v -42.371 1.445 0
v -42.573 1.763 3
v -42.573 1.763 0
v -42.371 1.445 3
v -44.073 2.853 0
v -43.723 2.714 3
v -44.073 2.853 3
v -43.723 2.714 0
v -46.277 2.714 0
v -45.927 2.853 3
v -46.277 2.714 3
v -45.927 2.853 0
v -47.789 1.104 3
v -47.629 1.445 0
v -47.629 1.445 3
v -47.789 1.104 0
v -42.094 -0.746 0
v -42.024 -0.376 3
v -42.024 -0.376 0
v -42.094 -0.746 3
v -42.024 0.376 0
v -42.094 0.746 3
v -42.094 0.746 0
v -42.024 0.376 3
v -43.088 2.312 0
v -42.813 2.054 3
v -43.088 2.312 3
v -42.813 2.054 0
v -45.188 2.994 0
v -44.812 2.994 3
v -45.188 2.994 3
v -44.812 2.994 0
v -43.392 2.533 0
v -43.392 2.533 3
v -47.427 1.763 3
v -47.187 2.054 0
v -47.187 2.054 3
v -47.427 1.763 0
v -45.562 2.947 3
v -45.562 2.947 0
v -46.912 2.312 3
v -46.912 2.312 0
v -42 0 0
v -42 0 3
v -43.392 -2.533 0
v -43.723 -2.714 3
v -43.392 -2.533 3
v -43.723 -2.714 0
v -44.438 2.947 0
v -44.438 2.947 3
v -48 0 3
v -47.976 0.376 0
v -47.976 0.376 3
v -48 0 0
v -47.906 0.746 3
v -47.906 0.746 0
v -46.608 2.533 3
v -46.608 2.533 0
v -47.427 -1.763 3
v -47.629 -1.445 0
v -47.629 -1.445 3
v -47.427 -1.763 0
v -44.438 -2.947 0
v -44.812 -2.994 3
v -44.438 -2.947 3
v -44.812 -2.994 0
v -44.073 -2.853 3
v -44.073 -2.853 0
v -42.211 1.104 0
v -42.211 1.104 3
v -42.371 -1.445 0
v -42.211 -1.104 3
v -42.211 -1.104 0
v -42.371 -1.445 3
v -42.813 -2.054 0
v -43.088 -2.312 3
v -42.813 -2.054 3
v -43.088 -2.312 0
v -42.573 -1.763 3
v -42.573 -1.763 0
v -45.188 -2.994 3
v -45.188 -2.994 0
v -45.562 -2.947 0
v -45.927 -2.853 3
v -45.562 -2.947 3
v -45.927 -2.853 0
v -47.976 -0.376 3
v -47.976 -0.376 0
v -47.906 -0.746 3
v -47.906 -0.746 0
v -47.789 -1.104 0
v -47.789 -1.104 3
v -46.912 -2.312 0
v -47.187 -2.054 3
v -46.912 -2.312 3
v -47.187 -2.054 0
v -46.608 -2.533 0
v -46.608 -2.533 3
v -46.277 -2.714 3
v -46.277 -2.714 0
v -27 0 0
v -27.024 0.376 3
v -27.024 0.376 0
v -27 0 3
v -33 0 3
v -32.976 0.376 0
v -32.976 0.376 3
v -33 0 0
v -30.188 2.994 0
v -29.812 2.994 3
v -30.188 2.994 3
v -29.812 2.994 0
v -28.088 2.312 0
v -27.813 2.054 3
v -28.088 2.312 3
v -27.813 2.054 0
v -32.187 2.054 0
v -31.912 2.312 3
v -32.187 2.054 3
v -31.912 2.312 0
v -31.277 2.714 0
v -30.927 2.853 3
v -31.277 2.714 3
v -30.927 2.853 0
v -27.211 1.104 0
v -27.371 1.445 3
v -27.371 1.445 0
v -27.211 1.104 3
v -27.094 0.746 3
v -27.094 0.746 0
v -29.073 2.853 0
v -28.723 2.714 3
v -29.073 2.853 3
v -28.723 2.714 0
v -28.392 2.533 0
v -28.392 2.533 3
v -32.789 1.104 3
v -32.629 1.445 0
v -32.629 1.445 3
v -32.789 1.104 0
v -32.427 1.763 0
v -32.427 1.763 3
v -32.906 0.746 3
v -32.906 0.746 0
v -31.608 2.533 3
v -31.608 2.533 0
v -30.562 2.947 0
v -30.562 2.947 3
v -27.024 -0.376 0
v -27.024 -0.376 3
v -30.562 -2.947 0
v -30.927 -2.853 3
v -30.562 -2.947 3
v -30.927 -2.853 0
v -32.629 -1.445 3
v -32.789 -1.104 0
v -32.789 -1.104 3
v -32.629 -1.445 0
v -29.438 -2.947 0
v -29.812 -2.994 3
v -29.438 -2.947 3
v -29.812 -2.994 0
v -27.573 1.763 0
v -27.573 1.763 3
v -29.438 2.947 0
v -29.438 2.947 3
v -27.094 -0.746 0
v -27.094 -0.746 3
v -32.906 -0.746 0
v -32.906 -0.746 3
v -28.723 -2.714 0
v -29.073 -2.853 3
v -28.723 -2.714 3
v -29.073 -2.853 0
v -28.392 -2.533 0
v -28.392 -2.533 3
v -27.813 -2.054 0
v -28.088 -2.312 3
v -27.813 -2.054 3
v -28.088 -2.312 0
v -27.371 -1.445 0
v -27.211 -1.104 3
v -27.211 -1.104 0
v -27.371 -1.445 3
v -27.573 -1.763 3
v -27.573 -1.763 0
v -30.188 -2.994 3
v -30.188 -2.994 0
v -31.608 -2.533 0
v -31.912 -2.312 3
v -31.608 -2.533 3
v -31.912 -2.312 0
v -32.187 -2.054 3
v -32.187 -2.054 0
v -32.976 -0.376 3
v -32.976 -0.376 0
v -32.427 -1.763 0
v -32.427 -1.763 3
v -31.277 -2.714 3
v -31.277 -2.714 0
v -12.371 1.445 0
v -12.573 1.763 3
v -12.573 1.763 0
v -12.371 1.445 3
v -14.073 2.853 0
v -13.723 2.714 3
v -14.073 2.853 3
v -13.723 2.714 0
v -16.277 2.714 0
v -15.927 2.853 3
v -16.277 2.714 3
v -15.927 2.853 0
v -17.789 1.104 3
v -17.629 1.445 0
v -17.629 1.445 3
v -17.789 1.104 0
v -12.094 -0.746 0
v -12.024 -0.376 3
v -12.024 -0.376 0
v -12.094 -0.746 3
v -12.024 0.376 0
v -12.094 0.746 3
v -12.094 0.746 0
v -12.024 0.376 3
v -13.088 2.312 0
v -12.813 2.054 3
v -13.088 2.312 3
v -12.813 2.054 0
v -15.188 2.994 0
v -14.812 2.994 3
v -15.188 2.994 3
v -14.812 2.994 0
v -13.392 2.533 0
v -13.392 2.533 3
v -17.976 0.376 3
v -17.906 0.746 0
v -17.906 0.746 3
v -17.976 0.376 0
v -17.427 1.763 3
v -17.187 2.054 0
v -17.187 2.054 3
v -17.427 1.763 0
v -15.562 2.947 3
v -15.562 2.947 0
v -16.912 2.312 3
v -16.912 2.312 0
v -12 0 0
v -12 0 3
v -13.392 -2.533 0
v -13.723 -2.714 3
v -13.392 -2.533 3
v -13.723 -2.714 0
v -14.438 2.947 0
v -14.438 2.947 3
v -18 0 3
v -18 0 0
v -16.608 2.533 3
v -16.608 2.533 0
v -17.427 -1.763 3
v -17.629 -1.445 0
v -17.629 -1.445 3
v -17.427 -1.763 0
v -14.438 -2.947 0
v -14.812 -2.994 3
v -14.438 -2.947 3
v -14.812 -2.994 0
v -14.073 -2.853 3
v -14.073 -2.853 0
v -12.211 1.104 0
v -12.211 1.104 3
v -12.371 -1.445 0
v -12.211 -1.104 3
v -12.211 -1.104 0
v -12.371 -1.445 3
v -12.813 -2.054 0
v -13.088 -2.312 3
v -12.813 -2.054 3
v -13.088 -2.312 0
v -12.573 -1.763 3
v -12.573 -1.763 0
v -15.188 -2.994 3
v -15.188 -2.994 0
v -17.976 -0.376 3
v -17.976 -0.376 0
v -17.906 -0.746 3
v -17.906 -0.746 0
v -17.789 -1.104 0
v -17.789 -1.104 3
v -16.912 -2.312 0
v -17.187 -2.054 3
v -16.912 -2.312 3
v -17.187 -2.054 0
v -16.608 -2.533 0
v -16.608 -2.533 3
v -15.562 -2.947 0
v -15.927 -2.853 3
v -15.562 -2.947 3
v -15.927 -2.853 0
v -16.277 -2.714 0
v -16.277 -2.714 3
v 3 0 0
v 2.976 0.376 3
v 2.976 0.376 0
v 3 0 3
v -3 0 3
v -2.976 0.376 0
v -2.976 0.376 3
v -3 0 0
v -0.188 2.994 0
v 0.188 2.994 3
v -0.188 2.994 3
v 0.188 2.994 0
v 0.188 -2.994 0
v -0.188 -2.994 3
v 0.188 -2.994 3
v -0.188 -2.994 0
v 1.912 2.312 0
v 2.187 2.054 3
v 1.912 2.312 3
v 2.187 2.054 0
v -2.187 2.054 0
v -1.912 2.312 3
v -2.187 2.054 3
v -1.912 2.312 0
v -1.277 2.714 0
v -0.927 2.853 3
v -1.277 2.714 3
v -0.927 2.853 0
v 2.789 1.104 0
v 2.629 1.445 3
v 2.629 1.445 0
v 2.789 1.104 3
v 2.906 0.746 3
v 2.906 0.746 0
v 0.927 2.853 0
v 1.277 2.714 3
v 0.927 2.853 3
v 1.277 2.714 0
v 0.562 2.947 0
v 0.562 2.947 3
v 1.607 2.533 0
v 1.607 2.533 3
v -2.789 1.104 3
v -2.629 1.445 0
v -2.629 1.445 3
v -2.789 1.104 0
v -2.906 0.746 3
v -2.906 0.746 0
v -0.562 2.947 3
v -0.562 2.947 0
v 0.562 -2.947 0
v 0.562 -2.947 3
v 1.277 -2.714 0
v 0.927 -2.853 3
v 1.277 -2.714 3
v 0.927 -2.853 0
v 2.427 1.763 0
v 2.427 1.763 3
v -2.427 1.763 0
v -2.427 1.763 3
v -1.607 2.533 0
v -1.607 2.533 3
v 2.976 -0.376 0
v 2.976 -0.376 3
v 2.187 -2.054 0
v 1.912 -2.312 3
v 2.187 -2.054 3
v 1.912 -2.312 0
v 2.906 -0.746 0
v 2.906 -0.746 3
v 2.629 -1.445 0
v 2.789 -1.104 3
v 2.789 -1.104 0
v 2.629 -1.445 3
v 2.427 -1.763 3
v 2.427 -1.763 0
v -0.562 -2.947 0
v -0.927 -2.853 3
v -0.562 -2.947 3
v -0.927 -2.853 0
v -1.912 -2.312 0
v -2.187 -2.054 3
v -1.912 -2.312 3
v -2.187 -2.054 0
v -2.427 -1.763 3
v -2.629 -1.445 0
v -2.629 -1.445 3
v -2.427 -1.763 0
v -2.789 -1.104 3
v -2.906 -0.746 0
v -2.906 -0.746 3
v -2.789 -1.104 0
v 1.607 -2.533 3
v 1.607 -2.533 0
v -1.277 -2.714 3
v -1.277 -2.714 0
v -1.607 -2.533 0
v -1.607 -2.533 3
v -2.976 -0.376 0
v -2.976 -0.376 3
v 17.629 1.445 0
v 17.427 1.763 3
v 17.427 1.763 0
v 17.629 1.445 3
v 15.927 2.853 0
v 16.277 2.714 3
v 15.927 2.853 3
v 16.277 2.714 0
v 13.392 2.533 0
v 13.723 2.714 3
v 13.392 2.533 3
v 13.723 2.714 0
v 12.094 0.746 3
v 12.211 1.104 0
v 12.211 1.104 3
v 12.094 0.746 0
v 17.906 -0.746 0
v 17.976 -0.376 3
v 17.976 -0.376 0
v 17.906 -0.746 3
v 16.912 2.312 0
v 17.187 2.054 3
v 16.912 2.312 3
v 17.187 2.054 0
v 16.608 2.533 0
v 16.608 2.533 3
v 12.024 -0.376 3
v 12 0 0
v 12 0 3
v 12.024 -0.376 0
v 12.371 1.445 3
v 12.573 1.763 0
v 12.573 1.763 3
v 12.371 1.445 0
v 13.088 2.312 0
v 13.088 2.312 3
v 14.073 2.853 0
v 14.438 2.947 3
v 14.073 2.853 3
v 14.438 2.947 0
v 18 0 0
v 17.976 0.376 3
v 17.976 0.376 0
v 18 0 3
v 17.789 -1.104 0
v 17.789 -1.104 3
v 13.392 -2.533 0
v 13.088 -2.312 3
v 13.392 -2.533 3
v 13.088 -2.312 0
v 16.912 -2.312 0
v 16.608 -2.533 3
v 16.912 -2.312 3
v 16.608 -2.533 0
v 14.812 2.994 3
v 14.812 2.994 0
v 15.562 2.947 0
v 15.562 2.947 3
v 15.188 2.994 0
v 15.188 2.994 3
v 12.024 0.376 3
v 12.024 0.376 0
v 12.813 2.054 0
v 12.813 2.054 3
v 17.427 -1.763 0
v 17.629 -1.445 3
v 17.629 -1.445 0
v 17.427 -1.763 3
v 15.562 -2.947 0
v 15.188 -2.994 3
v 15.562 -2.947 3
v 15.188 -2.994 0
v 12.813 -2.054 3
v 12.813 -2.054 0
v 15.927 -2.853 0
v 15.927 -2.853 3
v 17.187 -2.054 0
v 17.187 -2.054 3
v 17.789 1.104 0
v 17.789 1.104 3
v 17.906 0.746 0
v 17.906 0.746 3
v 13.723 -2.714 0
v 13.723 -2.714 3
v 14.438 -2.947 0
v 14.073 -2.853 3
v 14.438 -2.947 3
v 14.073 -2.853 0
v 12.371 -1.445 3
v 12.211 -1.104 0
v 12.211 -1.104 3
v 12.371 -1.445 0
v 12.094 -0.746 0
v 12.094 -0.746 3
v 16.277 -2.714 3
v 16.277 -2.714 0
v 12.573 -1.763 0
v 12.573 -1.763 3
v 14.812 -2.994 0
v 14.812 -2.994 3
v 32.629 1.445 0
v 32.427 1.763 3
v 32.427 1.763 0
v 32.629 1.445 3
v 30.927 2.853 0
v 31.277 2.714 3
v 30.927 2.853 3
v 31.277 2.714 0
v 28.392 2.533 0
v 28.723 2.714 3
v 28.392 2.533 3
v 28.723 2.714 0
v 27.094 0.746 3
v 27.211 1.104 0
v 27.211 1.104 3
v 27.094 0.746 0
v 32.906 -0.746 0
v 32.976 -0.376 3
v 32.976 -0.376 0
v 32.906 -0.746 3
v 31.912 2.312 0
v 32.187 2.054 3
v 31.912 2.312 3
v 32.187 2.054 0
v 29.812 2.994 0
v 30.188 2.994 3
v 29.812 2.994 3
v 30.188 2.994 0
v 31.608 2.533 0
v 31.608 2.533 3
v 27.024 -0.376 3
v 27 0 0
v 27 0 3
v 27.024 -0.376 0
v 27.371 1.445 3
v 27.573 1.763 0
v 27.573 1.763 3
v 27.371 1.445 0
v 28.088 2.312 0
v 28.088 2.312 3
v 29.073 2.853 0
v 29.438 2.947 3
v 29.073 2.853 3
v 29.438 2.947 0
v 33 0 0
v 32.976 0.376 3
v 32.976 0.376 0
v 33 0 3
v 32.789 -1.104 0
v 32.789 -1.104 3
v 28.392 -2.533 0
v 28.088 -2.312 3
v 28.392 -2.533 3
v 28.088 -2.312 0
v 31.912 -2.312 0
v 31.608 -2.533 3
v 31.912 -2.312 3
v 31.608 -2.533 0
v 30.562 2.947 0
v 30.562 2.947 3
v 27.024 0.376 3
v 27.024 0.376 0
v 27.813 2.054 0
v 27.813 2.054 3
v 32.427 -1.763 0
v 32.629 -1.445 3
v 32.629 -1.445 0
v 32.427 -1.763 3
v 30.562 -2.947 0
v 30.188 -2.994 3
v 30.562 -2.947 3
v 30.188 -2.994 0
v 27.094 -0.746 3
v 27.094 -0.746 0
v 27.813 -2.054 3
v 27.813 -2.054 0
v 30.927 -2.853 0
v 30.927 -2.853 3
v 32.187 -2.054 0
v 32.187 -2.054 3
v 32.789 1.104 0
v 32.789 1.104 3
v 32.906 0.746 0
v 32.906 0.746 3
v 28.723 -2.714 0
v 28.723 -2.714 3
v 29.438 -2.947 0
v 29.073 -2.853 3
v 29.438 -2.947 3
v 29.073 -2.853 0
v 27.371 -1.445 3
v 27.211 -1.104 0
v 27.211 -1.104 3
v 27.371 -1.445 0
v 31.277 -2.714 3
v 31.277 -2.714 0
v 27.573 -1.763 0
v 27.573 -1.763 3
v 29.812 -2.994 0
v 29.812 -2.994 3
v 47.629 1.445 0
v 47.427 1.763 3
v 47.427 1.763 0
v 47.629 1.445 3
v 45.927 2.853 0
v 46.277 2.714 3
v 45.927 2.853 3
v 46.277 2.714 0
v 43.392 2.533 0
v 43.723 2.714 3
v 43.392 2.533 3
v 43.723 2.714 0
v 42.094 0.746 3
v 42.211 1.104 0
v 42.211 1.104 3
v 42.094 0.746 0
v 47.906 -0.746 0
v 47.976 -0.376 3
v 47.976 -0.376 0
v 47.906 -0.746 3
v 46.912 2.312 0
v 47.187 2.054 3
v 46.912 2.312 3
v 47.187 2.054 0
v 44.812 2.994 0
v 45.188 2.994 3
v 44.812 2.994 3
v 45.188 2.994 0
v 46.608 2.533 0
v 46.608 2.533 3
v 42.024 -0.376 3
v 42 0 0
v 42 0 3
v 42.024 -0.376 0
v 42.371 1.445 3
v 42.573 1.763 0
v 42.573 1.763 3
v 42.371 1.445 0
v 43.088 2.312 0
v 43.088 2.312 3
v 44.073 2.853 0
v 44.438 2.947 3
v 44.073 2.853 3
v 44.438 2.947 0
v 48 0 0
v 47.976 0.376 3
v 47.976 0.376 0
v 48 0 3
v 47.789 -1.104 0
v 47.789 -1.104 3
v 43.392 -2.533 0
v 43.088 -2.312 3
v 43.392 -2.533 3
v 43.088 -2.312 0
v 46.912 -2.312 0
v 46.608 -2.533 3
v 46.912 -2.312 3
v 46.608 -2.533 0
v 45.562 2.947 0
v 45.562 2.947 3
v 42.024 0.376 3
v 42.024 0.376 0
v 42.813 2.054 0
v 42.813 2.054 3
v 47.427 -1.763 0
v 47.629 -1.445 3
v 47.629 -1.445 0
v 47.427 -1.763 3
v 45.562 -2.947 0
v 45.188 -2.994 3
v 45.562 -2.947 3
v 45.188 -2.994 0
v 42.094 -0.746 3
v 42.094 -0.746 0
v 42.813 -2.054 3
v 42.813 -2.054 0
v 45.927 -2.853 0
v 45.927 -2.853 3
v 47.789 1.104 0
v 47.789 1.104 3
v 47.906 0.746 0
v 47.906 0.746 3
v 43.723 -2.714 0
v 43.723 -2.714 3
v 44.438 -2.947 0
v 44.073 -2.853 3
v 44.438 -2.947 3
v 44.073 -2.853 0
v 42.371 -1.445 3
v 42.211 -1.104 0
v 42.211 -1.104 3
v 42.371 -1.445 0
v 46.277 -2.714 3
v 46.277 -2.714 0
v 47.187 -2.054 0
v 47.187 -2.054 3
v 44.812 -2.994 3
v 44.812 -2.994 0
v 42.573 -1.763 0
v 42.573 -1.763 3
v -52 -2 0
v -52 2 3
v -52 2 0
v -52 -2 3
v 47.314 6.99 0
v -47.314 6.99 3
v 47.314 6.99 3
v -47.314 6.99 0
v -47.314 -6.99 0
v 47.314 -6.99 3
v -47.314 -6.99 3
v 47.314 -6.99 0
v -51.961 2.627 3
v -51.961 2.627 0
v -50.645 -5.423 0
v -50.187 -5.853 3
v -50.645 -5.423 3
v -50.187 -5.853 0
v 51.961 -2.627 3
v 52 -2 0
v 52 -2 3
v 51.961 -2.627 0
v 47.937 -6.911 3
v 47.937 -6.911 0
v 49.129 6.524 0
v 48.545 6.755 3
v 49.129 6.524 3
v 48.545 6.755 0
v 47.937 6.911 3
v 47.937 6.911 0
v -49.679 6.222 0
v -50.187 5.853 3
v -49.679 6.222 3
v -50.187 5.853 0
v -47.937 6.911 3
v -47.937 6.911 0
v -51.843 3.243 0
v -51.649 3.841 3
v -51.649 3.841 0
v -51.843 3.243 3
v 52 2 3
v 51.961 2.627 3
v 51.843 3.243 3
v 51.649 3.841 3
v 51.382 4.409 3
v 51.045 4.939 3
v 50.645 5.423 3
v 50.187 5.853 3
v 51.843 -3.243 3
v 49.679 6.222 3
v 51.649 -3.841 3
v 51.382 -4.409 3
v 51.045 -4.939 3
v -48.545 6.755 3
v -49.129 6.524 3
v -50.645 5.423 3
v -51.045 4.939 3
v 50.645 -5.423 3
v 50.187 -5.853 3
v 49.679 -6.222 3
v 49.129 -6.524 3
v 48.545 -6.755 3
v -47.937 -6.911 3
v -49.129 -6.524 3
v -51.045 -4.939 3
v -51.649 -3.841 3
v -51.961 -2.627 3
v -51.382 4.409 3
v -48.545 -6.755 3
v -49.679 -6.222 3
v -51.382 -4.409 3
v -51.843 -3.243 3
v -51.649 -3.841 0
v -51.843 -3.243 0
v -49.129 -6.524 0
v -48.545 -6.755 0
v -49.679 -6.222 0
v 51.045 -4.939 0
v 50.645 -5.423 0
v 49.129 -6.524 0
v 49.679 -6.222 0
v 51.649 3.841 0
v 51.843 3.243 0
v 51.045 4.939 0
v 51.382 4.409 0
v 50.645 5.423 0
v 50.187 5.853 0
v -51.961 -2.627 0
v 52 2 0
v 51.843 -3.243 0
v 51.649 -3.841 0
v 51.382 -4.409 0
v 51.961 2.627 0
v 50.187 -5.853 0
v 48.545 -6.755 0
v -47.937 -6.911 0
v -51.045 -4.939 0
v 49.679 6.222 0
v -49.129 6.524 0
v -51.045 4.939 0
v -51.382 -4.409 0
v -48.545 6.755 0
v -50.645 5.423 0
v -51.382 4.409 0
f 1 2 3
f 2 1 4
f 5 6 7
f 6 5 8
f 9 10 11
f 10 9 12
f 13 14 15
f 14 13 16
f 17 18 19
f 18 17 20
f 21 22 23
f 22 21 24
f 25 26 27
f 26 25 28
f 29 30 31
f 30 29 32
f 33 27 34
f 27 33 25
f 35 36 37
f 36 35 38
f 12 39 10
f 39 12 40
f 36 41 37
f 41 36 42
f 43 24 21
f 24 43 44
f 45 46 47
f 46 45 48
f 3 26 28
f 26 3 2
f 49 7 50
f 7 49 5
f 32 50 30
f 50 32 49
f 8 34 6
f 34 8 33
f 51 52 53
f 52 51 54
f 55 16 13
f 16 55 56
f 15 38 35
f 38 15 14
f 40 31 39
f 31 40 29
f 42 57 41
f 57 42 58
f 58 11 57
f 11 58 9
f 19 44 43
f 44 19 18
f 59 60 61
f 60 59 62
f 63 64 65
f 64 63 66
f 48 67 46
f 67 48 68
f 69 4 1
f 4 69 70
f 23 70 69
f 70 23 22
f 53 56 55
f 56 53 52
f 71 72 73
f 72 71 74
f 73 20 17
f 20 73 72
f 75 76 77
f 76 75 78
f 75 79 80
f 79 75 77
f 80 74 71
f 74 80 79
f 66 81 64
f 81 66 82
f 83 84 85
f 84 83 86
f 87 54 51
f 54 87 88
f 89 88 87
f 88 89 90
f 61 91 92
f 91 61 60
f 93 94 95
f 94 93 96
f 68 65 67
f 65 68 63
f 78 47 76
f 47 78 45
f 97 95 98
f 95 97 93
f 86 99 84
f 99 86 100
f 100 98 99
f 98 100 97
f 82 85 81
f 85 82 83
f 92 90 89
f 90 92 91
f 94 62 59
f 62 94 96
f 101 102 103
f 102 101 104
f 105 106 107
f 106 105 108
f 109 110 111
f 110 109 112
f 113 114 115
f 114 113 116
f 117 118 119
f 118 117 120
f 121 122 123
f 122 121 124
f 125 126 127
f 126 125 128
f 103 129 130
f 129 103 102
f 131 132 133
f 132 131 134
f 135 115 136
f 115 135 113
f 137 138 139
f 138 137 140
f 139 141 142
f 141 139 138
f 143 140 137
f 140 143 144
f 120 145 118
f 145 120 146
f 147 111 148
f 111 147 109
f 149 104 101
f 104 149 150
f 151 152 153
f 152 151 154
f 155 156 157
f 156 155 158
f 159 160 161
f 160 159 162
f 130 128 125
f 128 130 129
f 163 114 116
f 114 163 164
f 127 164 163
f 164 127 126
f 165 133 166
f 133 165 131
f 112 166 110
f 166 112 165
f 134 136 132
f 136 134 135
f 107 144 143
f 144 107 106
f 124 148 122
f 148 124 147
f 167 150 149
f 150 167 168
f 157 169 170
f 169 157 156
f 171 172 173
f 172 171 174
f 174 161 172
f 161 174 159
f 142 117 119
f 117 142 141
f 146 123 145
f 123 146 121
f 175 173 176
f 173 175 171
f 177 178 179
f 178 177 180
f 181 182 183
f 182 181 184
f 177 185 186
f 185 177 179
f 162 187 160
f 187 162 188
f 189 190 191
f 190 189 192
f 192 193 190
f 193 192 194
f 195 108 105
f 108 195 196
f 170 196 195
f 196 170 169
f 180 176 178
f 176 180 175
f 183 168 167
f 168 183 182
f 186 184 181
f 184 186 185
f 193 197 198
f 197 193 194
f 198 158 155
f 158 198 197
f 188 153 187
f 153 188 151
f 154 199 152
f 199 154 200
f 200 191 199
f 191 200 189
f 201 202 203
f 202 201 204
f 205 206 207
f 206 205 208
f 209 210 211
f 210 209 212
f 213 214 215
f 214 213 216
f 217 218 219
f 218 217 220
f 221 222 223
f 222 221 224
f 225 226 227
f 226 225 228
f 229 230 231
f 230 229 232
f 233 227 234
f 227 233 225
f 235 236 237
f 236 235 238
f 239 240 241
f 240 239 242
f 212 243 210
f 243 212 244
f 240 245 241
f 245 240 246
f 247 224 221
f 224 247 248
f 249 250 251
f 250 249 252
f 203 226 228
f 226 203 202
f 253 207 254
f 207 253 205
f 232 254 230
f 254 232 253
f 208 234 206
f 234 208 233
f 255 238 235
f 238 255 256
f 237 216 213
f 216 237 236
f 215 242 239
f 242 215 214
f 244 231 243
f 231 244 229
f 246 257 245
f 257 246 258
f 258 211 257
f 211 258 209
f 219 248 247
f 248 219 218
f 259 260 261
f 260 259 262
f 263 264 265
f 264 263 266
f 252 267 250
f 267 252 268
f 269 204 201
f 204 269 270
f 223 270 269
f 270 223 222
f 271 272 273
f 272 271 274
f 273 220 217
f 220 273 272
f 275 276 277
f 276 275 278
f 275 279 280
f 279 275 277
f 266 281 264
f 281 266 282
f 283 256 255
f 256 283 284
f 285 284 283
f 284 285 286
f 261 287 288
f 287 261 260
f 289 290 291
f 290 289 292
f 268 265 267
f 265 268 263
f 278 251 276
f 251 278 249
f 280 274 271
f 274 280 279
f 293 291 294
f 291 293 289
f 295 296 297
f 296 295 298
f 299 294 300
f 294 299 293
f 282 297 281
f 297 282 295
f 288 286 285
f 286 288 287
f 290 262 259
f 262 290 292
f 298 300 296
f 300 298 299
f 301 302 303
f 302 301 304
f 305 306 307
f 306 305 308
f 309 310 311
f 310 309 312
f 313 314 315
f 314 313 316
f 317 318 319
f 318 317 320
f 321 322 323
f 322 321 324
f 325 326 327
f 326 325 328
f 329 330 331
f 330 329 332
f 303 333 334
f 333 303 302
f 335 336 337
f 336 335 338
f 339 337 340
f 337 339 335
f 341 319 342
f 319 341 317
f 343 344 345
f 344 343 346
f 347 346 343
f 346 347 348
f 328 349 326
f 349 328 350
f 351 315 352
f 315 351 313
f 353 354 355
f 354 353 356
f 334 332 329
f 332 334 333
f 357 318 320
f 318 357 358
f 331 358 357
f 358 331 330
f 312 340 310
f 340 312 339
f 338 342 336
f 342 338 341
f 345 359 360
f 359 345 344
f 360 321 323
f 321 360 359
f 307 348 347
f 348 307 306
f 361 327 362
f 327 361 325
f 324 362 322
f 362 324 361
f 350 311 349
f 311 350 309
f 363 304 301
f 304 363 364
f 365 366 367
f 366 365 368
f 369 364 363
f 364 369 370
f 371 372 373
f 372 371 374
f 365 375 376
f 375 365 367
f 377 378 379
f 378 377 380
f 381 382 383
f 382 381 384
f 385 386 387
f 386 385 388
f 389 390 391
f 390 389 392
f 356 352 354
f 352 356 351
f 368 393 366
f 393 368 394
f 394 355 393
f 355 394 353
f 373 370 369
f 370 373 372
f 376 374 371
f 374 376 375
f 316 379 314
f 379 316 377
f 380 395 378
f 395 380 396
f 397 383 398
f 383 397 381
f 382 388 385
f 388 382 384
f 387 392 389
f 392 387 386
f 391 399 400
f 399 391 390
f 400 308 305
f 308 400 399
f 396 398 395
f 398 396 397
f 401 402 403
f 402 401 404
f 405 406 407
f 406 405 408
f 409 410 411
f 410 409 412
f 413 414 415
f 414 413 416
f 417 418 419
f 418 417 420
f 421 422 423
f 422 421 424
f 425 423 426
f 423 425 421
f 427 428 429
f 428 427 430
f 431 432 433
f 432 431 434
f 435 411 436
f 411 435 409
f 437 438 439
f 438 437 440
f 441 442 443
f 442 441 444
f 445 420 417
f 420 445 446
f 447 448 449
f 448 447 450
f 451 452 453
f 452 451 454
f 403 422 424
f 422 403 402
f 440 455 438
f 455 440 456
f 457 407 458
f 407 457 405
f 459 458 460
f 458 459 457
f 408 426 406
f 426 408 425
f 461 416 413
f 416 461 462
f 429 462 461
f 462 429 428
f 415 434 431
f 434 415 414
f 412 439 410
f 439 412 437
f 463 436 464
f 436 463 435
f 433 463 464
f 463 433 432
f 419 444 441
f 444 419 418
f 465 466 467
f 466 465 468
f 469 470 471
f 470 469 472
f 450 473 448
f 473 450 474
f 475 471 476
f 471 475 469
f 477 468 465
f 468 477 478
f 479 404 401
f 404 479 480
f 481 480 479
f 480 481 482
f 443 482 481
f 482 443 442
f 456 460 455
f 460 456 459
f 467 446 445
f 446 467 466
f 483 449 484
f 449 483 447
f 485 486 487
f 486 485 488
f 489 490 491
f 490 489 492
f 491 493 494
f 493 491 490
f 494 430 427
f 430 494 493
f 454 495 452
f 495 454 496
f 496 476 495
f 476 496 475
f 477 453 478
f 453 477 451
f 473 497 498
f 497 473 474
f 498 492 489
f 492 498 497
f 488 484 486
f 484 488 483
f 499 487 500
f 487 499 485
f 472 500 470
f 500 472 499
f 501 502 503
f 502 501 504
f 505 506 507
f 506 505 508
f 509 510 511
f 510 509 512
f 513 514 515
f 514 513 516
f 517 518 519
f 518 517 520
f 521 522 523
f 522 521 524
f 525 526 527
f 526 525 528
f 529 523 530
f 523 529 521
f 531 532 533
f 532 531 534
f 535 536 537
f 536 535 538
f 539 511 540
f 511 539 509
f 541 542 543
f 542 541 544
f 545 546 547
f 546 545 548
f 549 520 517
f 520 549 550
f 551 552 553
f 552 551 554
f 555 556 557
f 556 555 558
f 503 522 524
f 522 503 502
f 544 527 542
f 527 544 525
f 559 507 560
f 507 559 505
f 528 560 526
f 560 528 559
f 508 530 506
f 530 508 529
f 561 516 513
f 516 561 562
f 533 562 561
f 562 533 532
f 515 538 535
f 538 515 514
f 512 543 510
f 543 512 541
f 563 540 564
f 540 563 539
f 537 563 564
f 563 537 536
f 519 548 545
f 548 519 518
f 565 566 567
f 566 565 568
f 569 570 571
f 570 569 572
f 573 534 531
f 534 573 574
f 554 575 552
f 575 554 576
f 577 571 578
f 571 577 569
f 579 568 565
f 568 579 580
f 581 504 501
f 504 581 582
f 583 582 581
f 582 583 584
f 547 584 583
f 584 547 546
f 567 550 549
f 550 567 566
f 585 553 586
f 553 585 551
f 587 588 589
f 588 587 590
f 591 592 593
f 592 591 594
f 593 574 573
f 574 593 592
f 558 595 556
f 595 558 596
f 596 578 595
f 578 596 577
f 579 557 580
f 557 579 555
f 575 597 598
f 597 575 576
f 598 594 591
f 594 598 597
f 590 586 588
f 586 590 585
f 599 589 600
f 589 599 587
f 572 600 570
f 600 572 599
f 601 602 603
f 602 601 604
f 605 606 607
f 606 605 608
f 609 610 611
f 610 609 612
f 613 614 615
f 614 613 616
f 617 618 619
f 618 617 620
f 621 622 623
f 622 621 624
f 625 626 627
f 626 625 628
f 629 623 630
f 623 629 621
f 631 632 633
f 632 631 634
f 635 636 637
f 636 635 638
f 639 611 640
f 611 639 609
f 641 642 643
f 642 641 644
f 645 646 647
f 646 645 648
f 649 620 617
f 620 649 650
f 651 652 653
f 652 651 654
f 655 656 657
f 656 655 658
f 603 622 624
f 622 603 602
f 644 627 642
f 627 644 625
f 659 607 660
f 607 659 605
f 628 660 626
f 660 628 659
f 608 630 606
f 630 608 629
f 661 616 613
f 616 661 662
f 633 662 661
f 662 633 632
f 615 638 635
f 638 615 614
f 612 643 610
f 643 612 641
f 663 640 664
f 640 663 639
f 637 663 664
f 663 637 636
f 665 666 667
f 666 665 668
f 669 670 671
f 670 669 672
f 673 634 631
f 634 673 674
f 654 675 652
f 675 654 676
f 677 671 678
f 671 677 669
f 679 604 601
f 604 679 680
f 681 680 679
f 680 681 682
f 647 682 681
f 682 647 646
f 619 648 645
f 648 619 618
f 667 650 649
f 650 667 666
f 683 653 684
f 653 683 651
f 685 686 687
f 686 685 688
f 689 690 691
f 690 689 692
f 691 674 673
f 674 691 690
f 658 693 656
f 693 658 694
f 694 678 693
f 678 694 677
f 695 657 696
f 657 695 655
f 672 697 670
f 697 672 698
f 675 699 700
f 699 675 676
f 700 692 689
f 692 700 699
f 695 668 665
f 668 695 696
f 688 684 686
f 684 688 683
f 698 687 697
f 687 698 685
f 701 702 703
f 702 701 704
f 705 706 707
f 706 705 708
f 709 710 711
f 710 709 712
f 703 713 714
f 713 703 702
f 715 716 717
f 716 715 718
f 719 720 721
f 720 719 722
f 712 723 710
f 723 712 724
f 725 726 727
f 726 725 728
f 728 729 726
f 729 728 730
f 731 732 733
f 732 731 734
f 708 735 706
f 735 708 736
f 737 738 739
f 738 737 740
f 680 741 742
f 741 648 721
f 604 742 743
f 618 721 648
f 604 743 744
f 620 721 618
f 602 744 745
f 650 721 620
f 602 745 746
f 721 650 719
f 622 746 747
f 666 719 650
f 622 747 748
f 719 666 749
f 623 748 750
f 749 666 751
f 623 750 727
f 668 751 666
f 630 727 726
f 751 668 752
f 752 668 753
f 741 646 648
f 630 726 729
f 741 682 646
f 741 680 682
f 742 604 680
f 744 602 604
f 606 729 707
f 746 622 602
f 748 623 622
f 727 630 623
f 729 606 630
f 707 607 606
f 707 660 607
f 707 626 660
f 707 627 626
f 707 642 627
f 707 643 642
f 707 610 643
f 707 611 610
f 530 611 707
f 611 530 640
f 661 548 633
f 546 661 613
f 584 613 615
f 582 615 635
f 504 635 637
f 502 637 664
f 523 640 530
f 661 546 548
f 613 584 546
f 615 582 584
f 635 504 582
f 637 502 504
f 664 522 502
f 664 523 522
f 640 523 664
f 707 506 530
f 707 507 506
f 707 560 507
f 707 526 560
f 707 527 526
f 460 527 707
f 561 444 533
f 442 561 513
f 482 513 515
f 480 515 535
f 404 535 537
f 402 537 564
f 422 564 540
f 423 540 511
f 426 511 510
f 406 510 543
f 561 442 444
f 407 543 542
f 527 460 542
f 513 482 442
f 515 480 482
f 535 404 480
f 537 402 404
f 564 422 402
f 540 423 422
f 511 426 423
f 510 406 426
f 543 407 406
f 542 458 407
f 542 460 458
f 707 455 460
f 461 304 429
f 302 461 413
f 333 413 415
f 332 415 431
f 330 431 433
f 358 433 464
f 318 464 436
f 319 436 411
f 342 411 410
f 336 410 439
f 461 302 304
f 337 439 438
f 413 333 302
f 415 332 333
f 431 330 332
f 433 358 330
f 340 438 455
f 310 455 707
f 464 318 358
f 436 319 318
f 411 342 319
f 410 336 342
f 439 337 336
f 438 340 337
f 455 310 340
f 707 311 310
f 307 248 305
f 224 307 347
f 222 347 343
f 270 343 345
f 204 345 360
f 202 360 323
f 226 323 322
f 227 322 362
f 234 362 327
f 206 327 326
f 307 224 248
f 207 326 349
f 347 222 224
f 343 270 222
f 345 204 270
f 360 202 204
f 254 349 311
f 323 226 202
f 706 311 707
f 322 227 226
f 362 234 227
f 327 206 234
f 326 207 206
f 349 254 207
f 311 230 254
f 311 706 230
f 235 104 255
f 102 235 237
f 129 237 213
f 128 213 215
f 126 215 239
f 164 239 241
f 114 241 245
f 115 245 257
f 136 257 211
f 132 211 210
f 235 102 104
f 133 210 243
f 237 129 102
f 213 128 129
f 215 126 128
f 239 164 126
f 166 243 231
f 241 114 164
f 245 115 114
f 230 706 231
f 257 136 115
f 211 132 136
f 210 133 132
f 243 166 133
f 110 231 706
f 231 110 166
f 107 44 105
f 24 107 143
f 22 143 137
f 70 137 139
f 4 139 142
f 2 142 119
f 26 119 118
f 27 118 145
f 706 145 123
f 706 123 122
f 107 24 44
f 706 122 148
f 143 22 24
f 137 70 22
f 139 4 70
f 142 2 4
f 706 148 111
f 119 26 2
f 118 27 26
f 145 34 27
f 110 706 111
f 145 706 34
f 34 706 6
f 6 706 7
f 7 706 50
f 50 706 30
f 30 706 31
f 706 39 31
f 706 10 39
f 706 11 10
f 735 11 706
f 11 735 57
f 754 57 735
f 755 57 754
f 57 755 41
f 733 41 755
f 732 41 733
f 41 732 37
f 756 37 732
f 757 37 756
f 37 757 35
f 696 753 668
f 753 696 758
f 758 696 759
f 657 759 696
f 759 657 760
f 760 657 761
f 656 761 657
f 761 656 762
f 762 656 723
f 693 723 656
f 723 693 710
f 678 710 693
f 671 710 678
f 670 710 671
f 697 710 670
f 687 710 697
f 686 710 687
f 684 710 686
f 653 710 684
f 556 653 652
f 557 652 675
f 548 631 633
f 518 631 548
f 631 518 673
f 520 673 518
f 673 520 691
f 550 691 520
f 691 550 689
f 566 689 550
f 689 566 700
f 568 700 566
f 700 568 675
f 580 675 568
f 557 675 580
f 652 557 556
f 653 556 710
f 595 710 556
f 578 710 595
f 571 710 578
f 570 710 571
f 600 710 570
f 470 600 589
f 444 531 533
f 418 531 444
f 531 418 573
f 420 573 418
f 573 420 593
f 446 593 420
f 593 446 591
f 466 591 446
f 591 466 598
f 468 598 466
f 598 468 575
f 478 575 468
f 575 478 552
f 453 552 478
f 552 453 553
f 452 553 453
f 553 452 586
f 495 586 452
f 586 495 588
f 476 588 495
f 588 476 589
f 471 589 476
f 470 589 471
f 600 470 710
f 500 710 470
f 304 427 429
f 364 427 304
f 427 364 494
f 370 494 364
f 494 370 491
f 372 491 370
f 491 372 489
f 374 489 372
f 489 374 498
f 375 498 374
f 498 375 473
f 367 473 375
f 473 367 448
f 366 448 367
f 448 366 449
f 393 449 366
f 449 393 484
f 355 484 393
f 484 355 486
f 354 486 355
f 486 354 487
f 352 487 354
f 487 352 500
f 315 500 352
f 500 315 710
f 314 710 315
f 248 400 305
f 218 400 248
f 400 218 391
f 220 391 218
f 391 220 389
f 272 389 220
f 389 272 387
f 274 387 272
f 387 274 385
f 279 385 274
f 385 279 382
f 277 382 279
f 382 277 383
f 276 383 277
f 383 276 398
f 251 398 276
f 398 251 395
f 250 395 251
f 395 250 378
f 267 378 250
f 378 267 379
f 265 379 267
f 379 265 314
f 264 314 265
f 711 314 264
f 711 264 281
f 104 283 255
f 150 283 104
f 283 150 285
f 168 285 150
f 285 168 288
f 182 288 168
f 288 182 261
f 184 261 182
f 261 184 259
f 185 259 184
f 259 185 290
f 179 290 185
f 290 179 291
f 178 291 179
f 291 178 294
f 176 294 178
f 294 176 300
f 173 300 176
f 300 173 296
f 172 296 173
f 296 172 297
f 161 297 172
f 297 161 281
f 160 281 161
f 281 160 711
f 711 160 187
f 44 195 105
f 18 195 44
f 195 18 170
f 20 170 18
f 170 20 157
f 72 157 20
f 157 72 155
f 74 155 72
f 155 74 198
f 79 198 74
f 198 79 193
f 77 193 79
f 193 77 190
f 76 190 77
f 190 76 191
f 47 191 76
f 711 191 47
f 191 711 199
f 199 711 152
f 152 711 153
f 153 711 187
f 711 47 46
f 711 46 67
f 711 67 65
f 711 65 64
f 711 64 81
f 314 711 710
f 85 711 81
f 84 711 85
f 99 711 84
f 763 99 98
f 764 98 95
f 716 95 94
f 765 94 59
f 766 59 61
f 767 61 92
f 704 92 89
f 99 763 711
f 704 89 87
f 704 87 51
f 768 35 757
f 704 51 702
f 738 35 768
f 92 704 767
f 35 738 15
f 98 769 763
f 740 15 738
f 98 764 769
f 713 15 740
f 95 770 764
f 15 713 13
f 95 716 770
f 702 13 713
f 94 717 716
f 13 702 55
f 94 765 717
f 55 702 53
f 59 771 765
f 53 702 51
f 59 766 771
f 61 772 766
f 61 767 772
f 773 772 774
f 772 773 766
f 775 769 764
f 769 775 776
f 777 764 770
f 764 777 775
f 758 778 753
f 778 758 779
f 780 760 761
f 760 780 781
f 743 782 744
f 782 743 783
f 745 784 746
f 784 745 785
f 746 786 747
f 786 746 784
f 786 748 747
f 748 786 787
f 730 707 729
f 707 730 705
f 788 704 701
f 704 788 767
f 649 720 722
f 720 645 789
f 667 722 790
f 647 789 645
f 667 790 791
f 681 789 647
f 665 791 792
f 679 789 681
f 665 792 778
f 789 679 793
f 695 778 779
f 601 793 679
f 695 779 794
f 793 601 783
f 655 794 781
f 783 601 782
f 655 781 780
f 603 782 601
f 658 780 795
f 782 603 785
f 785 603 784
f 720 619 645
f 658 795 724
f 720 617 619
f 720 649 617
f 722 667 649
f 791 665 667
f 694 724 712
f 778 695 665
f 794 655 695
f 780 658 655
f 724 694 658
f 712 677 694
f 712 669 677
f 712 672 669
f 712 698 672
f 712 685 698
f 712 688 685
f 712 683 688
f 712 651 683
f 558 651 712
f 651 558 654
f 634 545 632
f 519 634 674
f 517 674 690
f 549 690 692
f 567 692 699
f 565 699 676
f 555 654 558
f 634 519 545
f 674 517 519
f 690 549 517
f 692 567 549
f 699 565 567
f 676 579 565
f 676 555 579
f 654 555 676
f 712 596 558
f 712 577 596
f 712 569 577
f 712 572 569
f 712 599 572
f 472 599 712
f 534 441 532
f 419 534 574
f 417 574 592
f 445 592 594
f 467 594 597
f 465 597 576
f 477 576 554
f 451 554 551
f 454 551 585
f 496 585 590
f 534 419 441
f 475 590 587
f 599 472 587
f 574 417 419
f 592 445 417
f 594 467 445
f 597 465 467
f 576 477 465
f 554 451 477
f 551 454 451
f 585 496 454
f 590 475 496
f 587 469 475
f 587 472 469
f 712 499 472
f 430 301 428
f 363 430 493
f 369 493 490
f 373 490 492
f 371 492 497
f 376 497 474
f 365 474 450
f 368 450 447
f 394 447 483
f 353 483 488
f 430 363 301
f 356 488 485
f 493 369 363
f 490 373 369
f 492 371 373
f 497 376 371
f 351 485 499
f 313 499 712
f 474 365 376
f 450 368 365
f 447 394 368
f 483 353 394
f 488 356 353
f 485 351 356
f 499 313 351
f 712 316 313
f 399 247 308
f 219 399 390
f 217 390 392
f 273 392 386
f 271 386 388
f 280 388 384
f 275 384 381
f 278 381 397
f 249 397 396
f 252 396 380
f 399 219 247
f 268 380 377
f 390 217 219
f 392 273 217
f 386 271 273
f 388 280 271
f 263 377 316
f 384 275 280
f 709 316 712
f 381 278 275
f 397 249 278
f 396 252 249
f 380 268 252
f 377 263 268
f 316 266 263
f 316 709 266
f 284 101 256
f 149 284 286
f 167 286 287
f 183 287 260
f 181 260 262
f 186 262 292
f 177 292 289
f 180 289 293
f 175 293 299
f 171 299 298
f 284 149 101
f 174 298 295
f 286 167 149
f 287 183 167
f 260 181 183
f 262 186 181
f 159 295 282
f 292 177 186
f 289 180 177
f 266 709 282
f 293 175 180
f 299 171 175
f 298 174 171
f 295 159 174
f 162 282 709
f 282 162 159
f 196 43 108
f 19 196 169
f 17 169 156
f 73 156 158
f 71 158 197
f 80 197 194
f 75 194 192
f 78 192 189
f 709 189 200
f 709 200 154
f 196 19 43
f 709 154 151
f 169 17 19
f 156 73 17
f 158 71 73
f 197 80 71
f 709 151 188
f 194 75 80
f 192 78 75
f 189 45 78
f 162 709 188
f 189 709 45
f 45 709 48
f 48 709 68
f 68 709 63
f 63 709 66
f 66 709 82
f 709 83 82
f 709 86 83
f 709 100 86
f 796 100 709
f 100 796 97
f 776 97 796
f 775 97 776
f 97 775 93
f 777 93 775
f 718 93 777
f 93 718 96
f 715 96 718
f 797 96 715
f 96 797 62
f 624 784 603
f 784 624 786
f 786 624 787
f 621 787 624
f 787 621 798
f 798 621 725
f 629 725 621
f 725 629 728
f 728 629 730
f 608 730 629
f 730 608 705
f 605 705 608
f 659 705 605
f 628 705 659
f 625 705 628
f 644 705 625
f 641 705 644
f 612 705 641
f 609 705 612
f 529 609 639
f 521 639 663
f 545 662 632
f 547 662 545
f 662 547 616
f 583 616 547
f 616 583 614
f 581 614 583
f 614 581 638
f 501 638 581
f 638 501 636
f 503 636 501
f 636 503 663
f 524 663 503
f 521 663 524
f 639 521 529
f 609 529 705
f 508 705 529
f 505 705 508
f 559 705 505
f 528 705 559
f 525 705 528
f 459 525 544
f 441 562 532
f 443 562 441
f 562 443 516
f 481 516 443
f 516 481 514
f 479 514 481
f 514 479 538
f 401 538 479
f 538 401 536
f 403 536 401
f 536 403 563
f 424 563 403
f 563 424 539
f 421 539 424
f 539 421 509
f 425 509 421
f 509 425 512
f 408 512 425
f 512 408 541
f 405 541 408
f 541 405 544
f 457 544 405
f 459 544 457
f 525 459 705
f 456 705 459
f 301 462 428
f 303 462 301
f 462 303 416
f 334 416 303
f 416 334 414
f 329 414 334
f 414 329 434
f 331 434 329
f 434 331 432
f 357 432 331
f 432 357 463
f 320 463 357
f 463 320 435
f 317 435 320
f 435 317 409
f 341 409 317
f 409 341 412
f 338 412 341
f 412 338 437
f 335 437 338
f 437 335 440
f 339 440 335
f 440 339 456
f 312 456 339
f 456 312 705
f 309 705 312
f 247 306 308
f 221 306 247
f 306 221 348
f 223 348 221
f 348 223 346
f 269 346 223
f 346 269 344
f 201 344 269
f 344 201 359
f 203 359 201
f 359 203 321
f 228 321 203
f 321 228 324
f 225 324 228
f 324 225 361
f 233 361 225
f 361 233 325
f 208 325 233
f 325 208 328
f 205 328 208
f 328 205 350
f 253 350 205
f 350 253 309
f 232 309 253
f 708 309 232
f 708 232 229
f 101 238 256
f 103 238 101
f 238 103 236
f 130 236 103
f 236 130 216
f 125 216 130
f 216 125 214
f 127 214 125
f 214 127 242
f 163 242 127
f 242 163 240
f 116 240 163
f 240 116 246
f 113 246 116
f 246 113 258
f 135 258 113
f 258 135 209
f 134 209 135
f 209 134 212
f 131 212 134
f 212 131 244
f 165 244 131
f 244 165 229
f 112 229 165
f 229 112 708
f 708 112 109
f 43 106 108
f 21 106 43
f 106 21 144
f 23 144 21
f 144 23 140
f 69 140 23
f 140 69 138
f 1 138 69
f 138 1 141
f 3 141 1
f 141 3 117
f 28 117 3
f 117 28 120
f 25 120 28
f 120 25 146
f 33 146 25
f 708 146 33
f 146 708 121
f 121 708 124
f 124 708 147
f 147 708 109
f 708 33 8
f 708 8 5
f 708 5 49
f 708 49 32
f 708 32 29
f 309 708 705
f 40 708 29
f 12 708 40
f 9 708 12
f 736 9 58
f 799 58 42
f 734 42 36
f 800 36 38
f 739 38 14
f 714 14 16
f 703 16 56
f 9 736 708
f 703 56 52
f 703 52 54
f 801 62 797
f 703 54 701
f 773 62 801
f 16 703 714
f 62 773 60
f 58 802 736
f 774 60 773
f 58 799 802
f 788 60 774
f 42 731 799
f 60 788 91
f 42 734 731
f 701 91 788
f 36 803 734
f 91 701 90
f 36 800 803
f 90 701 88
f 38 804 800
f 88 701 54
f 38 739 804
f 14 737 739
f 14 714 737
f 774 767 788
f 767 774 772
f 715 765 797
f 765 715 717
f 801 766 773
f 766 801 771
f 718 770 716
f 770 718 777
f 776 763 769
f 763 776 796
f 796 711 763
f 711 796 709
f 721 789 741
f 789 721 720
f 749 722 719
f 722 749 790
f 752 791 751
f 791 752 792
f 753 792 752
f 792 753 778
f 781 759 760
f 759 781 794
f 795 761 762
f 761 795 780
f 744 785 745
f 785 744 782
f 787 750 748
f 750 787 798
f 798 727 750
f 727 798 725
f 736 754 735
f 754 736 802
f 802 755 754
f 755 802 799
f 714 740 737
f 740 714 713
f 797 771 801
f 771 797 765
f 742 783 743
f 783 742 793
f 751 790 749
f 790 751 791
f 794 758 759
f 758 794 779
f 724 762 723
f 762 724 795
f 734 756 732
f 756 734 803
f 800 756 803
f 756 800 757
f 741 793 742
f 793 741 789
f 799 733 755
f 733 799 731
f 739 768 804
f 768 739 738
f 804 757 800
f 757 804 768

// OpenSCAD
// Generated by SolidPython 1.1.3 on 2023-03-13 21:42:53
$fn = 50;


difference() {
	union() {
		translate(v = [0, 0, 0]) {
			rotate(a = [0, 0, 0]) {
				hull() {
					translate(v = [-47.0000000000, 2.0000000000, 0]) {
						rotate(a = [0, 0, 0]) {
							translate(v = [0, 0, 0]) {
								rotate(a = [0, 0, 0]) {
									cylinder(h = 3, r = 5);
								}
							}
						}
					}
					translate(v = [47.0000000000, 2.0000000000, 0]) {
						rotate(a = [0, 0, 0]) {
							translate(v = [0, 0, 0]) {
								rotate(a = [0, 0, 0]) {
									cylinder(h = 3, r = 5);
								}
							}
						}
					}
					translate(v = [-47.0000000000, -2.0000000000, 0]) {
						rotate(a = [0, 0, 0]) {
							translate(v = [0, 0, 0]) {
								rotate(a = [0, 0, 0]) {
									cylinder(h = 3, r = 5);
								}
							}
						}
					}
					translate(v = [47.0000000000, -2.0000000000, 0]) {
						rotate(a = [0, 0, 0]) {
							translate(v = [0, 0, 0]) {
								rotate(a = [0, 0, 0]) {
									cylinder(h = 3, r = 5);
								}
							}
						}
					}
				}
			}
		}
	}
	union() {
		translate(v = [-45.0000000000, 0.0000000000, 0]) {
			rotate(a = [0, 0, 0]) {
				translate(v = [0, 0, -50]) {
					rotate(a = [0, 0, 0]) {
						cylinder(h = 100, r = 3.0000000000);
					}
				}
			}
		}
		translate(v = [-30.0000000000, 0.0000000000, 0]) {
			rotate(a = [0, 0, 0]) {
				translate(v = [0, 0, -50]) {
					rotate(a = [0, 0, 0]) {
						cylinder(h = 100, r = 3.0000000000);
					}
				}
			}
		}
		translate(v = [-15.0000000000, 0.0000000000, 0]) {
			rotate(a = [0, 0, 0]) {
				translate(v = [0, 0, -50]) {
					rotate(a = [0, 0, 0]) {
						cylinder(h = 100, r = 3.0000000000);
					}
				}
			}
		}
		translate(v = [0.0000000000, 0.0000000000, 0]) {
			rotate(a = [0, 0, 0]) {
				translate(v = [0, 0, -50]) {
					rotate(a = [0, 0, 0]) {
						cylinder(h = 100, r = 3.0000000000);
					}
				}
			}
		}
		translate(v = [15.0000000000, 0.0000000000, 0]) {
			rotate(a = [0, 0, 0]) {
				translate(v = [0, 0, -50]) {
					rotate(a = [0, 0, 0]) {
						cylinder(h = 100, r = 3.0000000000);
					}
				}
			}
		}
		translate(v = [30.0000000000, 0.0000000000, 0]) {
			rotate(a = [0, 0, 0]) {
				translate(v = [0, 0, -50]) {
					rotate(a = [0, 0, 0]) {
						cylinder(h = 100, r = 3.0000000000);
					}
				}
			}
		}
		translate(v = [45.0000000000, 0.0000000000, 0]) {
			rotate(a = [0, 0, 0]) {
				translate(v = [0, 0, -50]) {
					rotate(a = [0, 0, 0]) {
						cylinder(h = 100, r = 3.0000000000);
					}
				}
			}
		}
	}
}
/***********************************************
*********      SolidPython code:      **********
************************************************
 
from solid import *
import os
import subprocess

import oomB

import opsc_library_gen

mode = "laser"
#mode = "3d_print"

defined_objects = {}

radius_dict = {}
countersunk_dict = {}


def set_mode(m):
    global mode
    mode = m
    radius_dict['M6'] = 6.5/2
    radius_dict['M3'] = 3.3/2
    if mode == "laser":
        radius_dict['M6'] = 6/2
        radius_dict['M3'] = 3/2

    countersunk_dict['M3'] = {}
    countersunk_dict['M3']['little_rad'] = radius_dict['M3']
    countersunk_dict['M3']['big_rad'] = (5.5+0.6)/2
    if mode == "laser":
        countersunk_dict['M3']['big_rad'] = (4.75+0.6)/2
        countersunk_dict['M3']['little_rad'] = (4.75+0.6)/2

    countersunk_dict['M3']['height'] = 1.7


def opsc_make_object(filename, objects, save_type="none",resolution=50, layers = 1, tilediff = 200, mode="laser", overwrite=True):
    if overwrite or not os.path.exists(filename):
        set_mode(mode)
        save_type = save_type.lower()
        os.makedirs(os.path.dirname(filename), exist_ok=True)
        final_object = opsc_get_object(objects, mode = mode)
        # Save the final object to the specified filename    
        scad_render_to_file(final_object, filename, file_header='$fn = %s;' % resolution, include_orig_code=True)
        if save_type == "all":
            saveToAll(filename)
        elif save_type == "dxf":
            saveToDxf(filename)
        if mode == "laser":
            filename_laser = filename.replace(".scad","-flat.scad")
            scad_render_to_file(getLaser(final_object, layers=layers, tilediff=tilediff), filename_laser, file_header='$fn = %s;' % resolution, include_orig_code=True)
            if save_type == "all":
                saveToAll(filename_laser)
            elif save_type == "dxf":
                saveToDxf(filename_laser)


def opsc_get_object(objects, mode = "laser"):
    # Create the solidpython objects only include the positive objects and if they don't have inclusion or their inclusion is either all or mode
    # Initialize an empty list to store the results
    positive_objects = []

    # Iterate over the "objects" list
    for obj in objects:
        # Check if the current object has a "type" key with a value of "positive"
        if obj['type'] == 'positive':
            # Check if the current object has an "inclusion" key and its value matches "mode",
            # or if the current object does not have an "inclusion" key at all
            if not 'inclusion' in obj or obj['inclusion'] == "all" or obj['inclusion'] == mode:
                # Call the "get_opsc_item" function with the current object as an argument
                opsc_item = get_opsc_item(obj)
                # Add the result to the "positive_objects" list
                positive_objects.append(opsc_item)
# Initialize an empty list to store the results
    negative_objects = []

    # Iterate over the "objects" list
    for obj in objects:
        # Check if the current object has a "type" key with a value of "negative"
        if obj['type'] == 'negative':
            # Check if the current object has an "inclusion" key and its value matches "mode",
            # or if the current object does not have an "inclusion" key at all
            if not 'inclusion' in obj or obj['inclusion'] == "all" or obj['inclusion'] == mode:
                # Call the "get_opsc_item" function with the current object as an argument
                opsc_item = get_opsc_item(obj)
                # Add the result to the "negative_objects" list
                negative_objects.append(opsc_item)
    
    #positive_objects = [get_opsc_item(obj) for obj in objects if obj['type'] == 'positive']
    #negative_objects = [get_opsc_item(obj) for obj in objects if obj['type'] == 'negative']
    # Union the positive objects
    positive_object = union()(*positive_objects)
    # Union the negative objects
    negative_object = union()(*negative_objects)
    # Create the final object by subtracting the negative objects from the positive objects
    return difference()(positive_object, negative_object)

def get_opsc_item(params):
    # A dictionary to map radius string values to numerical values
    #radius_dict = {'small': 5, 'medium': 10, 'large': 15}
    # An array of function names for basic shapes
    basic_shapes = ['cube', 'sphere', 'cylinder']
    
    # An array of function names for other shapes
    other_shapes = ['hole', 'slot', 'rounded_rectangle', 'countersunk', 'polyg']
    


    # Convert radius to r if present, and remove radius from the params dictionary
    if 'radius' in params:
        if isinstance(params['radius'], str):
            # Use the radius_dict to map the radius string value to a numerical value
            params['r'] = radius_dict[params['radius']]
        else:
            params['r'] = params['radius']
        del params['radius']
    

    # Check if the object type is a basic shape
    if params['shape'] in basic_shapes:
        # Remove shape and unexpected dictionary values
        allowed_keys = {'size', 'r', 'r1', 'r2', 'd', 'h', 'rw', 'rh', 'dw', 'dh'}
        shape_params = {k: v for k, v in params.items() if k in allowed_keys}

        #params['m'] = "#"
        ###split for adding modifier
        try:
            m = params['m']
            func = globals()[params['shape']]
            return_value = get_opsc_transform(params,func(**shape_params))
            return_value = (return_value).set_modifier(m)
            return return_value
        except KeyError as e:
            return get_opsc_transform(params,globals()[params['shape']](**shape_params))
        
    elif params['shape'] == 'polygon':
        # Remove shape and unexpected dictionary values
        h  = params['height']
        allowed_keys = {'points'}
        shape_params = {k: v for k, v in params.items() if k in allowed_keys}

        # Call the corresponding function for the shape parameter, using ** notation to pass the shape_params dictionary as keyword arguments
        params["rot"] = [0,0,0]        
        try:
            m = params['m']
            func = globals()[params['shape']]
            return_value = get_opsc_transform(params,linear_extrude(h)(globals()[params['shape']](**shape_params)))
            return_value = (return_value).set_modifier(m)
            return return_value
        except KeyError as e:
            return_value = get_opsc_transform(params,linear_extrude(h)(globals()[params['shape']](**shape_params)))
            return_value = (return_value)
            return return_value


    # If the object type is not a basic shape, check if it's a defined object or one of the other shapes
    elif params['shape'] in other_shapes:
        # Call the corresponding function for the shape parameter, passing the params dictionary as an argument
        p2 = copy.deepcopy(params)
        p2["pos"] = [0,0,0]
        return get_opsc_transform(params,globals()[params['shape']](p2))
    
    # If the object is not a basic shape or a defined object, try to import it from a .scad file
    else:
        obj = defined_objects[params['shape']]
        return get_opsc_transform(params,obj)

def get_opsc_transform(params, solid_obj):
    # Rotate the object based on the 'rot' field in the params dictionary, or the 'rotX', 'rotY', and 'rotZ' fields if 'rot' is not present
    rot = params.get('rot', [])
    if rot:
        rotX, rotY, rotZ = rot
    else:
        rotX = params.get('rotX', 0)
        rotY = params.get('rotY', 0)
        rotZ = params.get('rotZ', 0)
    solid_obj = rotate([rotX, rotY, rotZ])(solid_obj)

    # Translate the object based on the 'pos' field in the params dictionary, or the 'x', 'y', and 'z' fields if 'pos' is not present
    pos = params.get('pos', [])
    if pos:
        x, y, z = pos
    else:
        x = params.get('x', 0)
        y = params.get('y', 0)
        z = params.get('z', 0)
    solid_obj = translate([x, y, z])(solid_obj)
    return solid_obj


import random

def opsc_easy_array(type, shape, repeats, pos_start, shift_arr, **kwargs):
    for i in range(0,3):
        repeats.append(1)
        pos_start.append(0)
        shift_arr.append(0)
    return_objects = []

    for x in range(0,repeats[0]):
        for y in range(0,repeats[1]):
            for z in range(0,repeats[2]):
                return_objects.append(opsc_easy(type, shape, pos=[pos_start[0]+x*shift_arr[0],pos_start[1]+y*shift_arr[1],pos_start[2]+z*shift_arr[2]], **kwargs))
    return return_objects                



def opsc_easy(type, shape, **kwargs):
    obj = {
        'type': type,
        'shape': shape
    }
    for param in ['size', 'r', 'r1', 'r2', 'd', 'h', 'rw', 'rh', 'dw', 'dh', 'pos', 'x', 'y', 'z', 'rot', 'rotX', 'rotY', 'rotZ', "w", "inclusion", 'sides', 'height', "m"]:
        if param in kwargs:
            obj[param] = kwargs[param]
    return obj

def hole(params):
    p2 = copy.deepcopy(params)  
    # Check if the radius is a string and replace it with the corresponding value from the dictionary
    if isinstance(p2['r'], str):
        p2['r'] = radius_dict[p2['r']]
    
    # Set the height to 100 if not specified
    if 'h' not in p2:
        p2['h'] = 100
        p2["pos"] = [0,0,-50]
    p2["center"] = True
    # Create the cylinder object
    p2["shape"] = "cylinder"
    p2["type"] = "positive"

    return get_opsc_item(p2)

import copy

def countersunk(params):
    p2 = copy.deepcopy(params)
    counter_rad = p2['r']
    p2['r'] = radius_dict[p2['r']]
    hp = copy.deepcopy(p2)
    hp["type"] = "positive"
    hp["shape"] = "hole"
    del hp["rot"]
    hol = get_opsc_item(hp)
    
    cp = copy.deepcopy(p2)
    cp["h"] = countersunk_dict[counter_rad]["height"]
    cp["r2"] = countersunk_dict[counter_rad]["little_rad"]
    cp["r1"] = countersunk_dict[counter_rad]["big_rad"]
    del cp["r"]
    del cp["rot"]
    cp["type"] = "positive"
    cp["shape"] = "cylinder"
    cp["pos"] = [0,0,0]

    top = get_opsc_item(cp)
    return union()(hol,top)



def slot(params):  
    p2 = copy.deepcopy(params) 
    if isinstance(p2['r'], str):
        p2['r'] = radius_dict[p2['r']]
    p2["type"] = "positive"
    p2["shape"] = "hole"
    del p2["rot"]
    p2["pos"] = [0,0,0]
    left = copy.deepcopy(p2)
    right = copy.deepcopy(p2)
    left["pos"][0] = p2["w"] / 2 - p2["r"] 
    
    right["pos"][0] = -p2["w"] / 2 + p2["r"] 
    pass
    leftObj = get_opsc_item(left)
    rightObj = get_opsc_item(right)
    return hull()(leftObj, rightObj)

def rounded_rectangle(params):   
    p2 = copy.deepcopy(params) 
    p2["h"] = p2["size"][2]
    p2["pos"] = p2.get("pos", [0, 0, 0]) 
    p2["type"] = "positive"
    p2["shape"] = "hole"
    p2["pos"] = [0,0,0]
    
    if 'rot' in p2:
        del p2["rot"]   
    if 'r' not in p2:
        p2["r"] = 5 
    tl = copy.deepcopy(p2)
    tr = copy.deepcopy(p2)
    bl = copy.deepcopy(p2)
    br = copy.deepcopy(p2)
    tl["pos"][0] = -(p2["size"][0] - p2["r"]*2)/2
    tl["pos"][1] = (p2["size"][1] - p2["r"]*2)/2
    tr["pos"][0] = (p2["size"][0] - p2["r"]*2)/2
    tr["pos"][1] = (p2["size"][1] - p2["r"]*2)/2
    bl["pos"][0] = -(p2["size"][0] - p2["r"]*2)/2
    bl["pos"][1] = -(p2["size"][1] - p2["r"]*2)/2
    br["pos"][0] = (p2["size"][0] - p2["r"]*2)/2
    br["pos"][1] = -(p2["size"][1] - p2["r"]*2)/2
    del tl["size"]
    del tr["size"]
    del bl["size"]
    del br["size"]
    tlo = get_opsc_item(tl)
    tro = get_opsc_item(tr)
    blo = get_opsc_item(bl)
    bro = get_opsc_item(br)    
    return hull()(tlo, tro, blo, bro)



def polyg(params):
    p2 = copy.deepcopy(params) 
    p2["type"] = "positive"
    p2["shape"] = "polygon"
    p2["pos"] = [0,0,0]
    sides = p2["sides"]
    radius = p2["r"]    
    angles = [i * 360 / sides for i in range(sides)]
    points = regular_polygon(sides, radius)
    
    p2["points"] = points
    return get_opsc_item(p2)

import math

def regular_polygon(num_sides, radius):
    # Calculate the angle between each side
    angle = 2 * math.pi / num_sides

    # Calculate the points of the polygon
    points = []
    for i in range(num_sides):
        x = radius * math.cos(i * angle)
        y = radius * math.sin(i * angle)
        points.append((x, y))
    return points

def import_scad_object(filename):
    # Import the .scad file and convert it to a solidpython object
    #filename = "parts"
    obj = import_scad(filename)
    return obj.main()



import os
import solid as solidpython

# A dictionary to store the defined objects


def load_scad_objects():
    opsc_library_gen.gen_library(defined_objects)

import random

def test(num_objects):
    objects = []
    for i in range(num_objects):
        # Choose a random shape
        #shape = random.choice(['cube', 'sphere', 'cylinder', 'hole', 'slot', "rounded_rectangle"])
        shape = random.choice(["rounded_rectangle"])

        # Choose a random type
        type = random.choice(['positive', 'negative'])
        
        # Create an empty object dictionary
        obj = {'shape': shape, 'type': type}
        
        # Set shape-specific parameters
        if obj['shape'] in ['cube']:
            obj['size'] =  [random.uniform(5, 15), random.uniform(5, 15), random.uniform(5, 15)]
        if obj['shape'] in ['rounded_rectangle']:
            obj['size'] =  [random.uniform(5, 15), random.uniform(5, 15), random.uniform(5, 15)]
            obj['r'] = random.uniform(0.5, 5)
        elif obj['shape'] == 'sphere':
            obj['r'] = random.uniform(5, 15)
        elif obj['shape'] in ['cylinder', 'hole']:
            obj['r'] = random.uniform(0.5, 5)
            obj['h'] = random.uniform(5, 15)
        elif obj['shape'] == 'slot':
            obj['r'] = random.uniform(0.5, 5)
            obj['h'] = random.uniform(5, 15)
            obj['w'] = random.uniform(5, 15)
        
        # Set a random position and rotation
        obj['pos'] = [random.uniform(-20, 20), random.uniform(-20, 20), random.uniform(-20, 20)]
        obj['rot'] = [random.uniform(-180, 180), random.uniform(-180, 180), random.uniform(-180, 180)]
        
        # Add the object to the list
        objects.append(obj)
    return objects

####### old file saving
def saveToAll(fileIn):
    saveToStl(fileIn)
    saveToDxf(fileIn)
    saveToPng(fileIn)
    saveToSvg(fileIn)

def saveToDxf(fileIn, fileOut="", copy_to_laser=True):
    if fileOut == "":
        fileOut = fileIn.replace(".scad",".dxf")
    saveToFile(fileIn, fileOut)


    
def saveToPng(fileIn, fileOut="",extra="--render"):
    if fileOut == "":
        fileOut = fileIn.replace(".scad",".png")
    saveToFile(fileIn, fileOut)

def saveToStl(fileIn, fileOut=""):
    if fileOut == "":
        fileOut = fileIn.replace(".scad",".stl")
    saveToFile(fileIn, fileOut)
    
def saveToSvg(fileIn, fileOut=""):
    if fileOut == "":
        fileOut = fileIn.replace(".scad",".svg")
    saveToFile(fileIn, fileOut)

def saveToFile(fileIn, fileOut,extra=""):
    #extra = extra + " --colorscheme Tomorrow"

    launchStr = 'openscad -o "' + fileOut + '"' + extra + ' "' + fileIn + '"'
    if ".png" in fileOut:
        launchStr = launchStr + " --render"
    print("            saveToFile launch string: " + launchStr)
    subprocess.run(launchStr)
    x=0

def getLaser(final_object,start=1.5,layers=1,thickness=3,tilediff=200):
        rv= []

        for x in range(layers):
            rv.append(translate([0,x*tilediff,0])(
                    projection()(
                        intersection()(translate([-500,-500,start+x*thickness])(cube(size=[1000,1000,0.1])),
                            final_object
                        )
                    )
            )
            )
            
        return union()(rv)

set_mode("laser")
load_scad_objects() 
 
************************************************/
